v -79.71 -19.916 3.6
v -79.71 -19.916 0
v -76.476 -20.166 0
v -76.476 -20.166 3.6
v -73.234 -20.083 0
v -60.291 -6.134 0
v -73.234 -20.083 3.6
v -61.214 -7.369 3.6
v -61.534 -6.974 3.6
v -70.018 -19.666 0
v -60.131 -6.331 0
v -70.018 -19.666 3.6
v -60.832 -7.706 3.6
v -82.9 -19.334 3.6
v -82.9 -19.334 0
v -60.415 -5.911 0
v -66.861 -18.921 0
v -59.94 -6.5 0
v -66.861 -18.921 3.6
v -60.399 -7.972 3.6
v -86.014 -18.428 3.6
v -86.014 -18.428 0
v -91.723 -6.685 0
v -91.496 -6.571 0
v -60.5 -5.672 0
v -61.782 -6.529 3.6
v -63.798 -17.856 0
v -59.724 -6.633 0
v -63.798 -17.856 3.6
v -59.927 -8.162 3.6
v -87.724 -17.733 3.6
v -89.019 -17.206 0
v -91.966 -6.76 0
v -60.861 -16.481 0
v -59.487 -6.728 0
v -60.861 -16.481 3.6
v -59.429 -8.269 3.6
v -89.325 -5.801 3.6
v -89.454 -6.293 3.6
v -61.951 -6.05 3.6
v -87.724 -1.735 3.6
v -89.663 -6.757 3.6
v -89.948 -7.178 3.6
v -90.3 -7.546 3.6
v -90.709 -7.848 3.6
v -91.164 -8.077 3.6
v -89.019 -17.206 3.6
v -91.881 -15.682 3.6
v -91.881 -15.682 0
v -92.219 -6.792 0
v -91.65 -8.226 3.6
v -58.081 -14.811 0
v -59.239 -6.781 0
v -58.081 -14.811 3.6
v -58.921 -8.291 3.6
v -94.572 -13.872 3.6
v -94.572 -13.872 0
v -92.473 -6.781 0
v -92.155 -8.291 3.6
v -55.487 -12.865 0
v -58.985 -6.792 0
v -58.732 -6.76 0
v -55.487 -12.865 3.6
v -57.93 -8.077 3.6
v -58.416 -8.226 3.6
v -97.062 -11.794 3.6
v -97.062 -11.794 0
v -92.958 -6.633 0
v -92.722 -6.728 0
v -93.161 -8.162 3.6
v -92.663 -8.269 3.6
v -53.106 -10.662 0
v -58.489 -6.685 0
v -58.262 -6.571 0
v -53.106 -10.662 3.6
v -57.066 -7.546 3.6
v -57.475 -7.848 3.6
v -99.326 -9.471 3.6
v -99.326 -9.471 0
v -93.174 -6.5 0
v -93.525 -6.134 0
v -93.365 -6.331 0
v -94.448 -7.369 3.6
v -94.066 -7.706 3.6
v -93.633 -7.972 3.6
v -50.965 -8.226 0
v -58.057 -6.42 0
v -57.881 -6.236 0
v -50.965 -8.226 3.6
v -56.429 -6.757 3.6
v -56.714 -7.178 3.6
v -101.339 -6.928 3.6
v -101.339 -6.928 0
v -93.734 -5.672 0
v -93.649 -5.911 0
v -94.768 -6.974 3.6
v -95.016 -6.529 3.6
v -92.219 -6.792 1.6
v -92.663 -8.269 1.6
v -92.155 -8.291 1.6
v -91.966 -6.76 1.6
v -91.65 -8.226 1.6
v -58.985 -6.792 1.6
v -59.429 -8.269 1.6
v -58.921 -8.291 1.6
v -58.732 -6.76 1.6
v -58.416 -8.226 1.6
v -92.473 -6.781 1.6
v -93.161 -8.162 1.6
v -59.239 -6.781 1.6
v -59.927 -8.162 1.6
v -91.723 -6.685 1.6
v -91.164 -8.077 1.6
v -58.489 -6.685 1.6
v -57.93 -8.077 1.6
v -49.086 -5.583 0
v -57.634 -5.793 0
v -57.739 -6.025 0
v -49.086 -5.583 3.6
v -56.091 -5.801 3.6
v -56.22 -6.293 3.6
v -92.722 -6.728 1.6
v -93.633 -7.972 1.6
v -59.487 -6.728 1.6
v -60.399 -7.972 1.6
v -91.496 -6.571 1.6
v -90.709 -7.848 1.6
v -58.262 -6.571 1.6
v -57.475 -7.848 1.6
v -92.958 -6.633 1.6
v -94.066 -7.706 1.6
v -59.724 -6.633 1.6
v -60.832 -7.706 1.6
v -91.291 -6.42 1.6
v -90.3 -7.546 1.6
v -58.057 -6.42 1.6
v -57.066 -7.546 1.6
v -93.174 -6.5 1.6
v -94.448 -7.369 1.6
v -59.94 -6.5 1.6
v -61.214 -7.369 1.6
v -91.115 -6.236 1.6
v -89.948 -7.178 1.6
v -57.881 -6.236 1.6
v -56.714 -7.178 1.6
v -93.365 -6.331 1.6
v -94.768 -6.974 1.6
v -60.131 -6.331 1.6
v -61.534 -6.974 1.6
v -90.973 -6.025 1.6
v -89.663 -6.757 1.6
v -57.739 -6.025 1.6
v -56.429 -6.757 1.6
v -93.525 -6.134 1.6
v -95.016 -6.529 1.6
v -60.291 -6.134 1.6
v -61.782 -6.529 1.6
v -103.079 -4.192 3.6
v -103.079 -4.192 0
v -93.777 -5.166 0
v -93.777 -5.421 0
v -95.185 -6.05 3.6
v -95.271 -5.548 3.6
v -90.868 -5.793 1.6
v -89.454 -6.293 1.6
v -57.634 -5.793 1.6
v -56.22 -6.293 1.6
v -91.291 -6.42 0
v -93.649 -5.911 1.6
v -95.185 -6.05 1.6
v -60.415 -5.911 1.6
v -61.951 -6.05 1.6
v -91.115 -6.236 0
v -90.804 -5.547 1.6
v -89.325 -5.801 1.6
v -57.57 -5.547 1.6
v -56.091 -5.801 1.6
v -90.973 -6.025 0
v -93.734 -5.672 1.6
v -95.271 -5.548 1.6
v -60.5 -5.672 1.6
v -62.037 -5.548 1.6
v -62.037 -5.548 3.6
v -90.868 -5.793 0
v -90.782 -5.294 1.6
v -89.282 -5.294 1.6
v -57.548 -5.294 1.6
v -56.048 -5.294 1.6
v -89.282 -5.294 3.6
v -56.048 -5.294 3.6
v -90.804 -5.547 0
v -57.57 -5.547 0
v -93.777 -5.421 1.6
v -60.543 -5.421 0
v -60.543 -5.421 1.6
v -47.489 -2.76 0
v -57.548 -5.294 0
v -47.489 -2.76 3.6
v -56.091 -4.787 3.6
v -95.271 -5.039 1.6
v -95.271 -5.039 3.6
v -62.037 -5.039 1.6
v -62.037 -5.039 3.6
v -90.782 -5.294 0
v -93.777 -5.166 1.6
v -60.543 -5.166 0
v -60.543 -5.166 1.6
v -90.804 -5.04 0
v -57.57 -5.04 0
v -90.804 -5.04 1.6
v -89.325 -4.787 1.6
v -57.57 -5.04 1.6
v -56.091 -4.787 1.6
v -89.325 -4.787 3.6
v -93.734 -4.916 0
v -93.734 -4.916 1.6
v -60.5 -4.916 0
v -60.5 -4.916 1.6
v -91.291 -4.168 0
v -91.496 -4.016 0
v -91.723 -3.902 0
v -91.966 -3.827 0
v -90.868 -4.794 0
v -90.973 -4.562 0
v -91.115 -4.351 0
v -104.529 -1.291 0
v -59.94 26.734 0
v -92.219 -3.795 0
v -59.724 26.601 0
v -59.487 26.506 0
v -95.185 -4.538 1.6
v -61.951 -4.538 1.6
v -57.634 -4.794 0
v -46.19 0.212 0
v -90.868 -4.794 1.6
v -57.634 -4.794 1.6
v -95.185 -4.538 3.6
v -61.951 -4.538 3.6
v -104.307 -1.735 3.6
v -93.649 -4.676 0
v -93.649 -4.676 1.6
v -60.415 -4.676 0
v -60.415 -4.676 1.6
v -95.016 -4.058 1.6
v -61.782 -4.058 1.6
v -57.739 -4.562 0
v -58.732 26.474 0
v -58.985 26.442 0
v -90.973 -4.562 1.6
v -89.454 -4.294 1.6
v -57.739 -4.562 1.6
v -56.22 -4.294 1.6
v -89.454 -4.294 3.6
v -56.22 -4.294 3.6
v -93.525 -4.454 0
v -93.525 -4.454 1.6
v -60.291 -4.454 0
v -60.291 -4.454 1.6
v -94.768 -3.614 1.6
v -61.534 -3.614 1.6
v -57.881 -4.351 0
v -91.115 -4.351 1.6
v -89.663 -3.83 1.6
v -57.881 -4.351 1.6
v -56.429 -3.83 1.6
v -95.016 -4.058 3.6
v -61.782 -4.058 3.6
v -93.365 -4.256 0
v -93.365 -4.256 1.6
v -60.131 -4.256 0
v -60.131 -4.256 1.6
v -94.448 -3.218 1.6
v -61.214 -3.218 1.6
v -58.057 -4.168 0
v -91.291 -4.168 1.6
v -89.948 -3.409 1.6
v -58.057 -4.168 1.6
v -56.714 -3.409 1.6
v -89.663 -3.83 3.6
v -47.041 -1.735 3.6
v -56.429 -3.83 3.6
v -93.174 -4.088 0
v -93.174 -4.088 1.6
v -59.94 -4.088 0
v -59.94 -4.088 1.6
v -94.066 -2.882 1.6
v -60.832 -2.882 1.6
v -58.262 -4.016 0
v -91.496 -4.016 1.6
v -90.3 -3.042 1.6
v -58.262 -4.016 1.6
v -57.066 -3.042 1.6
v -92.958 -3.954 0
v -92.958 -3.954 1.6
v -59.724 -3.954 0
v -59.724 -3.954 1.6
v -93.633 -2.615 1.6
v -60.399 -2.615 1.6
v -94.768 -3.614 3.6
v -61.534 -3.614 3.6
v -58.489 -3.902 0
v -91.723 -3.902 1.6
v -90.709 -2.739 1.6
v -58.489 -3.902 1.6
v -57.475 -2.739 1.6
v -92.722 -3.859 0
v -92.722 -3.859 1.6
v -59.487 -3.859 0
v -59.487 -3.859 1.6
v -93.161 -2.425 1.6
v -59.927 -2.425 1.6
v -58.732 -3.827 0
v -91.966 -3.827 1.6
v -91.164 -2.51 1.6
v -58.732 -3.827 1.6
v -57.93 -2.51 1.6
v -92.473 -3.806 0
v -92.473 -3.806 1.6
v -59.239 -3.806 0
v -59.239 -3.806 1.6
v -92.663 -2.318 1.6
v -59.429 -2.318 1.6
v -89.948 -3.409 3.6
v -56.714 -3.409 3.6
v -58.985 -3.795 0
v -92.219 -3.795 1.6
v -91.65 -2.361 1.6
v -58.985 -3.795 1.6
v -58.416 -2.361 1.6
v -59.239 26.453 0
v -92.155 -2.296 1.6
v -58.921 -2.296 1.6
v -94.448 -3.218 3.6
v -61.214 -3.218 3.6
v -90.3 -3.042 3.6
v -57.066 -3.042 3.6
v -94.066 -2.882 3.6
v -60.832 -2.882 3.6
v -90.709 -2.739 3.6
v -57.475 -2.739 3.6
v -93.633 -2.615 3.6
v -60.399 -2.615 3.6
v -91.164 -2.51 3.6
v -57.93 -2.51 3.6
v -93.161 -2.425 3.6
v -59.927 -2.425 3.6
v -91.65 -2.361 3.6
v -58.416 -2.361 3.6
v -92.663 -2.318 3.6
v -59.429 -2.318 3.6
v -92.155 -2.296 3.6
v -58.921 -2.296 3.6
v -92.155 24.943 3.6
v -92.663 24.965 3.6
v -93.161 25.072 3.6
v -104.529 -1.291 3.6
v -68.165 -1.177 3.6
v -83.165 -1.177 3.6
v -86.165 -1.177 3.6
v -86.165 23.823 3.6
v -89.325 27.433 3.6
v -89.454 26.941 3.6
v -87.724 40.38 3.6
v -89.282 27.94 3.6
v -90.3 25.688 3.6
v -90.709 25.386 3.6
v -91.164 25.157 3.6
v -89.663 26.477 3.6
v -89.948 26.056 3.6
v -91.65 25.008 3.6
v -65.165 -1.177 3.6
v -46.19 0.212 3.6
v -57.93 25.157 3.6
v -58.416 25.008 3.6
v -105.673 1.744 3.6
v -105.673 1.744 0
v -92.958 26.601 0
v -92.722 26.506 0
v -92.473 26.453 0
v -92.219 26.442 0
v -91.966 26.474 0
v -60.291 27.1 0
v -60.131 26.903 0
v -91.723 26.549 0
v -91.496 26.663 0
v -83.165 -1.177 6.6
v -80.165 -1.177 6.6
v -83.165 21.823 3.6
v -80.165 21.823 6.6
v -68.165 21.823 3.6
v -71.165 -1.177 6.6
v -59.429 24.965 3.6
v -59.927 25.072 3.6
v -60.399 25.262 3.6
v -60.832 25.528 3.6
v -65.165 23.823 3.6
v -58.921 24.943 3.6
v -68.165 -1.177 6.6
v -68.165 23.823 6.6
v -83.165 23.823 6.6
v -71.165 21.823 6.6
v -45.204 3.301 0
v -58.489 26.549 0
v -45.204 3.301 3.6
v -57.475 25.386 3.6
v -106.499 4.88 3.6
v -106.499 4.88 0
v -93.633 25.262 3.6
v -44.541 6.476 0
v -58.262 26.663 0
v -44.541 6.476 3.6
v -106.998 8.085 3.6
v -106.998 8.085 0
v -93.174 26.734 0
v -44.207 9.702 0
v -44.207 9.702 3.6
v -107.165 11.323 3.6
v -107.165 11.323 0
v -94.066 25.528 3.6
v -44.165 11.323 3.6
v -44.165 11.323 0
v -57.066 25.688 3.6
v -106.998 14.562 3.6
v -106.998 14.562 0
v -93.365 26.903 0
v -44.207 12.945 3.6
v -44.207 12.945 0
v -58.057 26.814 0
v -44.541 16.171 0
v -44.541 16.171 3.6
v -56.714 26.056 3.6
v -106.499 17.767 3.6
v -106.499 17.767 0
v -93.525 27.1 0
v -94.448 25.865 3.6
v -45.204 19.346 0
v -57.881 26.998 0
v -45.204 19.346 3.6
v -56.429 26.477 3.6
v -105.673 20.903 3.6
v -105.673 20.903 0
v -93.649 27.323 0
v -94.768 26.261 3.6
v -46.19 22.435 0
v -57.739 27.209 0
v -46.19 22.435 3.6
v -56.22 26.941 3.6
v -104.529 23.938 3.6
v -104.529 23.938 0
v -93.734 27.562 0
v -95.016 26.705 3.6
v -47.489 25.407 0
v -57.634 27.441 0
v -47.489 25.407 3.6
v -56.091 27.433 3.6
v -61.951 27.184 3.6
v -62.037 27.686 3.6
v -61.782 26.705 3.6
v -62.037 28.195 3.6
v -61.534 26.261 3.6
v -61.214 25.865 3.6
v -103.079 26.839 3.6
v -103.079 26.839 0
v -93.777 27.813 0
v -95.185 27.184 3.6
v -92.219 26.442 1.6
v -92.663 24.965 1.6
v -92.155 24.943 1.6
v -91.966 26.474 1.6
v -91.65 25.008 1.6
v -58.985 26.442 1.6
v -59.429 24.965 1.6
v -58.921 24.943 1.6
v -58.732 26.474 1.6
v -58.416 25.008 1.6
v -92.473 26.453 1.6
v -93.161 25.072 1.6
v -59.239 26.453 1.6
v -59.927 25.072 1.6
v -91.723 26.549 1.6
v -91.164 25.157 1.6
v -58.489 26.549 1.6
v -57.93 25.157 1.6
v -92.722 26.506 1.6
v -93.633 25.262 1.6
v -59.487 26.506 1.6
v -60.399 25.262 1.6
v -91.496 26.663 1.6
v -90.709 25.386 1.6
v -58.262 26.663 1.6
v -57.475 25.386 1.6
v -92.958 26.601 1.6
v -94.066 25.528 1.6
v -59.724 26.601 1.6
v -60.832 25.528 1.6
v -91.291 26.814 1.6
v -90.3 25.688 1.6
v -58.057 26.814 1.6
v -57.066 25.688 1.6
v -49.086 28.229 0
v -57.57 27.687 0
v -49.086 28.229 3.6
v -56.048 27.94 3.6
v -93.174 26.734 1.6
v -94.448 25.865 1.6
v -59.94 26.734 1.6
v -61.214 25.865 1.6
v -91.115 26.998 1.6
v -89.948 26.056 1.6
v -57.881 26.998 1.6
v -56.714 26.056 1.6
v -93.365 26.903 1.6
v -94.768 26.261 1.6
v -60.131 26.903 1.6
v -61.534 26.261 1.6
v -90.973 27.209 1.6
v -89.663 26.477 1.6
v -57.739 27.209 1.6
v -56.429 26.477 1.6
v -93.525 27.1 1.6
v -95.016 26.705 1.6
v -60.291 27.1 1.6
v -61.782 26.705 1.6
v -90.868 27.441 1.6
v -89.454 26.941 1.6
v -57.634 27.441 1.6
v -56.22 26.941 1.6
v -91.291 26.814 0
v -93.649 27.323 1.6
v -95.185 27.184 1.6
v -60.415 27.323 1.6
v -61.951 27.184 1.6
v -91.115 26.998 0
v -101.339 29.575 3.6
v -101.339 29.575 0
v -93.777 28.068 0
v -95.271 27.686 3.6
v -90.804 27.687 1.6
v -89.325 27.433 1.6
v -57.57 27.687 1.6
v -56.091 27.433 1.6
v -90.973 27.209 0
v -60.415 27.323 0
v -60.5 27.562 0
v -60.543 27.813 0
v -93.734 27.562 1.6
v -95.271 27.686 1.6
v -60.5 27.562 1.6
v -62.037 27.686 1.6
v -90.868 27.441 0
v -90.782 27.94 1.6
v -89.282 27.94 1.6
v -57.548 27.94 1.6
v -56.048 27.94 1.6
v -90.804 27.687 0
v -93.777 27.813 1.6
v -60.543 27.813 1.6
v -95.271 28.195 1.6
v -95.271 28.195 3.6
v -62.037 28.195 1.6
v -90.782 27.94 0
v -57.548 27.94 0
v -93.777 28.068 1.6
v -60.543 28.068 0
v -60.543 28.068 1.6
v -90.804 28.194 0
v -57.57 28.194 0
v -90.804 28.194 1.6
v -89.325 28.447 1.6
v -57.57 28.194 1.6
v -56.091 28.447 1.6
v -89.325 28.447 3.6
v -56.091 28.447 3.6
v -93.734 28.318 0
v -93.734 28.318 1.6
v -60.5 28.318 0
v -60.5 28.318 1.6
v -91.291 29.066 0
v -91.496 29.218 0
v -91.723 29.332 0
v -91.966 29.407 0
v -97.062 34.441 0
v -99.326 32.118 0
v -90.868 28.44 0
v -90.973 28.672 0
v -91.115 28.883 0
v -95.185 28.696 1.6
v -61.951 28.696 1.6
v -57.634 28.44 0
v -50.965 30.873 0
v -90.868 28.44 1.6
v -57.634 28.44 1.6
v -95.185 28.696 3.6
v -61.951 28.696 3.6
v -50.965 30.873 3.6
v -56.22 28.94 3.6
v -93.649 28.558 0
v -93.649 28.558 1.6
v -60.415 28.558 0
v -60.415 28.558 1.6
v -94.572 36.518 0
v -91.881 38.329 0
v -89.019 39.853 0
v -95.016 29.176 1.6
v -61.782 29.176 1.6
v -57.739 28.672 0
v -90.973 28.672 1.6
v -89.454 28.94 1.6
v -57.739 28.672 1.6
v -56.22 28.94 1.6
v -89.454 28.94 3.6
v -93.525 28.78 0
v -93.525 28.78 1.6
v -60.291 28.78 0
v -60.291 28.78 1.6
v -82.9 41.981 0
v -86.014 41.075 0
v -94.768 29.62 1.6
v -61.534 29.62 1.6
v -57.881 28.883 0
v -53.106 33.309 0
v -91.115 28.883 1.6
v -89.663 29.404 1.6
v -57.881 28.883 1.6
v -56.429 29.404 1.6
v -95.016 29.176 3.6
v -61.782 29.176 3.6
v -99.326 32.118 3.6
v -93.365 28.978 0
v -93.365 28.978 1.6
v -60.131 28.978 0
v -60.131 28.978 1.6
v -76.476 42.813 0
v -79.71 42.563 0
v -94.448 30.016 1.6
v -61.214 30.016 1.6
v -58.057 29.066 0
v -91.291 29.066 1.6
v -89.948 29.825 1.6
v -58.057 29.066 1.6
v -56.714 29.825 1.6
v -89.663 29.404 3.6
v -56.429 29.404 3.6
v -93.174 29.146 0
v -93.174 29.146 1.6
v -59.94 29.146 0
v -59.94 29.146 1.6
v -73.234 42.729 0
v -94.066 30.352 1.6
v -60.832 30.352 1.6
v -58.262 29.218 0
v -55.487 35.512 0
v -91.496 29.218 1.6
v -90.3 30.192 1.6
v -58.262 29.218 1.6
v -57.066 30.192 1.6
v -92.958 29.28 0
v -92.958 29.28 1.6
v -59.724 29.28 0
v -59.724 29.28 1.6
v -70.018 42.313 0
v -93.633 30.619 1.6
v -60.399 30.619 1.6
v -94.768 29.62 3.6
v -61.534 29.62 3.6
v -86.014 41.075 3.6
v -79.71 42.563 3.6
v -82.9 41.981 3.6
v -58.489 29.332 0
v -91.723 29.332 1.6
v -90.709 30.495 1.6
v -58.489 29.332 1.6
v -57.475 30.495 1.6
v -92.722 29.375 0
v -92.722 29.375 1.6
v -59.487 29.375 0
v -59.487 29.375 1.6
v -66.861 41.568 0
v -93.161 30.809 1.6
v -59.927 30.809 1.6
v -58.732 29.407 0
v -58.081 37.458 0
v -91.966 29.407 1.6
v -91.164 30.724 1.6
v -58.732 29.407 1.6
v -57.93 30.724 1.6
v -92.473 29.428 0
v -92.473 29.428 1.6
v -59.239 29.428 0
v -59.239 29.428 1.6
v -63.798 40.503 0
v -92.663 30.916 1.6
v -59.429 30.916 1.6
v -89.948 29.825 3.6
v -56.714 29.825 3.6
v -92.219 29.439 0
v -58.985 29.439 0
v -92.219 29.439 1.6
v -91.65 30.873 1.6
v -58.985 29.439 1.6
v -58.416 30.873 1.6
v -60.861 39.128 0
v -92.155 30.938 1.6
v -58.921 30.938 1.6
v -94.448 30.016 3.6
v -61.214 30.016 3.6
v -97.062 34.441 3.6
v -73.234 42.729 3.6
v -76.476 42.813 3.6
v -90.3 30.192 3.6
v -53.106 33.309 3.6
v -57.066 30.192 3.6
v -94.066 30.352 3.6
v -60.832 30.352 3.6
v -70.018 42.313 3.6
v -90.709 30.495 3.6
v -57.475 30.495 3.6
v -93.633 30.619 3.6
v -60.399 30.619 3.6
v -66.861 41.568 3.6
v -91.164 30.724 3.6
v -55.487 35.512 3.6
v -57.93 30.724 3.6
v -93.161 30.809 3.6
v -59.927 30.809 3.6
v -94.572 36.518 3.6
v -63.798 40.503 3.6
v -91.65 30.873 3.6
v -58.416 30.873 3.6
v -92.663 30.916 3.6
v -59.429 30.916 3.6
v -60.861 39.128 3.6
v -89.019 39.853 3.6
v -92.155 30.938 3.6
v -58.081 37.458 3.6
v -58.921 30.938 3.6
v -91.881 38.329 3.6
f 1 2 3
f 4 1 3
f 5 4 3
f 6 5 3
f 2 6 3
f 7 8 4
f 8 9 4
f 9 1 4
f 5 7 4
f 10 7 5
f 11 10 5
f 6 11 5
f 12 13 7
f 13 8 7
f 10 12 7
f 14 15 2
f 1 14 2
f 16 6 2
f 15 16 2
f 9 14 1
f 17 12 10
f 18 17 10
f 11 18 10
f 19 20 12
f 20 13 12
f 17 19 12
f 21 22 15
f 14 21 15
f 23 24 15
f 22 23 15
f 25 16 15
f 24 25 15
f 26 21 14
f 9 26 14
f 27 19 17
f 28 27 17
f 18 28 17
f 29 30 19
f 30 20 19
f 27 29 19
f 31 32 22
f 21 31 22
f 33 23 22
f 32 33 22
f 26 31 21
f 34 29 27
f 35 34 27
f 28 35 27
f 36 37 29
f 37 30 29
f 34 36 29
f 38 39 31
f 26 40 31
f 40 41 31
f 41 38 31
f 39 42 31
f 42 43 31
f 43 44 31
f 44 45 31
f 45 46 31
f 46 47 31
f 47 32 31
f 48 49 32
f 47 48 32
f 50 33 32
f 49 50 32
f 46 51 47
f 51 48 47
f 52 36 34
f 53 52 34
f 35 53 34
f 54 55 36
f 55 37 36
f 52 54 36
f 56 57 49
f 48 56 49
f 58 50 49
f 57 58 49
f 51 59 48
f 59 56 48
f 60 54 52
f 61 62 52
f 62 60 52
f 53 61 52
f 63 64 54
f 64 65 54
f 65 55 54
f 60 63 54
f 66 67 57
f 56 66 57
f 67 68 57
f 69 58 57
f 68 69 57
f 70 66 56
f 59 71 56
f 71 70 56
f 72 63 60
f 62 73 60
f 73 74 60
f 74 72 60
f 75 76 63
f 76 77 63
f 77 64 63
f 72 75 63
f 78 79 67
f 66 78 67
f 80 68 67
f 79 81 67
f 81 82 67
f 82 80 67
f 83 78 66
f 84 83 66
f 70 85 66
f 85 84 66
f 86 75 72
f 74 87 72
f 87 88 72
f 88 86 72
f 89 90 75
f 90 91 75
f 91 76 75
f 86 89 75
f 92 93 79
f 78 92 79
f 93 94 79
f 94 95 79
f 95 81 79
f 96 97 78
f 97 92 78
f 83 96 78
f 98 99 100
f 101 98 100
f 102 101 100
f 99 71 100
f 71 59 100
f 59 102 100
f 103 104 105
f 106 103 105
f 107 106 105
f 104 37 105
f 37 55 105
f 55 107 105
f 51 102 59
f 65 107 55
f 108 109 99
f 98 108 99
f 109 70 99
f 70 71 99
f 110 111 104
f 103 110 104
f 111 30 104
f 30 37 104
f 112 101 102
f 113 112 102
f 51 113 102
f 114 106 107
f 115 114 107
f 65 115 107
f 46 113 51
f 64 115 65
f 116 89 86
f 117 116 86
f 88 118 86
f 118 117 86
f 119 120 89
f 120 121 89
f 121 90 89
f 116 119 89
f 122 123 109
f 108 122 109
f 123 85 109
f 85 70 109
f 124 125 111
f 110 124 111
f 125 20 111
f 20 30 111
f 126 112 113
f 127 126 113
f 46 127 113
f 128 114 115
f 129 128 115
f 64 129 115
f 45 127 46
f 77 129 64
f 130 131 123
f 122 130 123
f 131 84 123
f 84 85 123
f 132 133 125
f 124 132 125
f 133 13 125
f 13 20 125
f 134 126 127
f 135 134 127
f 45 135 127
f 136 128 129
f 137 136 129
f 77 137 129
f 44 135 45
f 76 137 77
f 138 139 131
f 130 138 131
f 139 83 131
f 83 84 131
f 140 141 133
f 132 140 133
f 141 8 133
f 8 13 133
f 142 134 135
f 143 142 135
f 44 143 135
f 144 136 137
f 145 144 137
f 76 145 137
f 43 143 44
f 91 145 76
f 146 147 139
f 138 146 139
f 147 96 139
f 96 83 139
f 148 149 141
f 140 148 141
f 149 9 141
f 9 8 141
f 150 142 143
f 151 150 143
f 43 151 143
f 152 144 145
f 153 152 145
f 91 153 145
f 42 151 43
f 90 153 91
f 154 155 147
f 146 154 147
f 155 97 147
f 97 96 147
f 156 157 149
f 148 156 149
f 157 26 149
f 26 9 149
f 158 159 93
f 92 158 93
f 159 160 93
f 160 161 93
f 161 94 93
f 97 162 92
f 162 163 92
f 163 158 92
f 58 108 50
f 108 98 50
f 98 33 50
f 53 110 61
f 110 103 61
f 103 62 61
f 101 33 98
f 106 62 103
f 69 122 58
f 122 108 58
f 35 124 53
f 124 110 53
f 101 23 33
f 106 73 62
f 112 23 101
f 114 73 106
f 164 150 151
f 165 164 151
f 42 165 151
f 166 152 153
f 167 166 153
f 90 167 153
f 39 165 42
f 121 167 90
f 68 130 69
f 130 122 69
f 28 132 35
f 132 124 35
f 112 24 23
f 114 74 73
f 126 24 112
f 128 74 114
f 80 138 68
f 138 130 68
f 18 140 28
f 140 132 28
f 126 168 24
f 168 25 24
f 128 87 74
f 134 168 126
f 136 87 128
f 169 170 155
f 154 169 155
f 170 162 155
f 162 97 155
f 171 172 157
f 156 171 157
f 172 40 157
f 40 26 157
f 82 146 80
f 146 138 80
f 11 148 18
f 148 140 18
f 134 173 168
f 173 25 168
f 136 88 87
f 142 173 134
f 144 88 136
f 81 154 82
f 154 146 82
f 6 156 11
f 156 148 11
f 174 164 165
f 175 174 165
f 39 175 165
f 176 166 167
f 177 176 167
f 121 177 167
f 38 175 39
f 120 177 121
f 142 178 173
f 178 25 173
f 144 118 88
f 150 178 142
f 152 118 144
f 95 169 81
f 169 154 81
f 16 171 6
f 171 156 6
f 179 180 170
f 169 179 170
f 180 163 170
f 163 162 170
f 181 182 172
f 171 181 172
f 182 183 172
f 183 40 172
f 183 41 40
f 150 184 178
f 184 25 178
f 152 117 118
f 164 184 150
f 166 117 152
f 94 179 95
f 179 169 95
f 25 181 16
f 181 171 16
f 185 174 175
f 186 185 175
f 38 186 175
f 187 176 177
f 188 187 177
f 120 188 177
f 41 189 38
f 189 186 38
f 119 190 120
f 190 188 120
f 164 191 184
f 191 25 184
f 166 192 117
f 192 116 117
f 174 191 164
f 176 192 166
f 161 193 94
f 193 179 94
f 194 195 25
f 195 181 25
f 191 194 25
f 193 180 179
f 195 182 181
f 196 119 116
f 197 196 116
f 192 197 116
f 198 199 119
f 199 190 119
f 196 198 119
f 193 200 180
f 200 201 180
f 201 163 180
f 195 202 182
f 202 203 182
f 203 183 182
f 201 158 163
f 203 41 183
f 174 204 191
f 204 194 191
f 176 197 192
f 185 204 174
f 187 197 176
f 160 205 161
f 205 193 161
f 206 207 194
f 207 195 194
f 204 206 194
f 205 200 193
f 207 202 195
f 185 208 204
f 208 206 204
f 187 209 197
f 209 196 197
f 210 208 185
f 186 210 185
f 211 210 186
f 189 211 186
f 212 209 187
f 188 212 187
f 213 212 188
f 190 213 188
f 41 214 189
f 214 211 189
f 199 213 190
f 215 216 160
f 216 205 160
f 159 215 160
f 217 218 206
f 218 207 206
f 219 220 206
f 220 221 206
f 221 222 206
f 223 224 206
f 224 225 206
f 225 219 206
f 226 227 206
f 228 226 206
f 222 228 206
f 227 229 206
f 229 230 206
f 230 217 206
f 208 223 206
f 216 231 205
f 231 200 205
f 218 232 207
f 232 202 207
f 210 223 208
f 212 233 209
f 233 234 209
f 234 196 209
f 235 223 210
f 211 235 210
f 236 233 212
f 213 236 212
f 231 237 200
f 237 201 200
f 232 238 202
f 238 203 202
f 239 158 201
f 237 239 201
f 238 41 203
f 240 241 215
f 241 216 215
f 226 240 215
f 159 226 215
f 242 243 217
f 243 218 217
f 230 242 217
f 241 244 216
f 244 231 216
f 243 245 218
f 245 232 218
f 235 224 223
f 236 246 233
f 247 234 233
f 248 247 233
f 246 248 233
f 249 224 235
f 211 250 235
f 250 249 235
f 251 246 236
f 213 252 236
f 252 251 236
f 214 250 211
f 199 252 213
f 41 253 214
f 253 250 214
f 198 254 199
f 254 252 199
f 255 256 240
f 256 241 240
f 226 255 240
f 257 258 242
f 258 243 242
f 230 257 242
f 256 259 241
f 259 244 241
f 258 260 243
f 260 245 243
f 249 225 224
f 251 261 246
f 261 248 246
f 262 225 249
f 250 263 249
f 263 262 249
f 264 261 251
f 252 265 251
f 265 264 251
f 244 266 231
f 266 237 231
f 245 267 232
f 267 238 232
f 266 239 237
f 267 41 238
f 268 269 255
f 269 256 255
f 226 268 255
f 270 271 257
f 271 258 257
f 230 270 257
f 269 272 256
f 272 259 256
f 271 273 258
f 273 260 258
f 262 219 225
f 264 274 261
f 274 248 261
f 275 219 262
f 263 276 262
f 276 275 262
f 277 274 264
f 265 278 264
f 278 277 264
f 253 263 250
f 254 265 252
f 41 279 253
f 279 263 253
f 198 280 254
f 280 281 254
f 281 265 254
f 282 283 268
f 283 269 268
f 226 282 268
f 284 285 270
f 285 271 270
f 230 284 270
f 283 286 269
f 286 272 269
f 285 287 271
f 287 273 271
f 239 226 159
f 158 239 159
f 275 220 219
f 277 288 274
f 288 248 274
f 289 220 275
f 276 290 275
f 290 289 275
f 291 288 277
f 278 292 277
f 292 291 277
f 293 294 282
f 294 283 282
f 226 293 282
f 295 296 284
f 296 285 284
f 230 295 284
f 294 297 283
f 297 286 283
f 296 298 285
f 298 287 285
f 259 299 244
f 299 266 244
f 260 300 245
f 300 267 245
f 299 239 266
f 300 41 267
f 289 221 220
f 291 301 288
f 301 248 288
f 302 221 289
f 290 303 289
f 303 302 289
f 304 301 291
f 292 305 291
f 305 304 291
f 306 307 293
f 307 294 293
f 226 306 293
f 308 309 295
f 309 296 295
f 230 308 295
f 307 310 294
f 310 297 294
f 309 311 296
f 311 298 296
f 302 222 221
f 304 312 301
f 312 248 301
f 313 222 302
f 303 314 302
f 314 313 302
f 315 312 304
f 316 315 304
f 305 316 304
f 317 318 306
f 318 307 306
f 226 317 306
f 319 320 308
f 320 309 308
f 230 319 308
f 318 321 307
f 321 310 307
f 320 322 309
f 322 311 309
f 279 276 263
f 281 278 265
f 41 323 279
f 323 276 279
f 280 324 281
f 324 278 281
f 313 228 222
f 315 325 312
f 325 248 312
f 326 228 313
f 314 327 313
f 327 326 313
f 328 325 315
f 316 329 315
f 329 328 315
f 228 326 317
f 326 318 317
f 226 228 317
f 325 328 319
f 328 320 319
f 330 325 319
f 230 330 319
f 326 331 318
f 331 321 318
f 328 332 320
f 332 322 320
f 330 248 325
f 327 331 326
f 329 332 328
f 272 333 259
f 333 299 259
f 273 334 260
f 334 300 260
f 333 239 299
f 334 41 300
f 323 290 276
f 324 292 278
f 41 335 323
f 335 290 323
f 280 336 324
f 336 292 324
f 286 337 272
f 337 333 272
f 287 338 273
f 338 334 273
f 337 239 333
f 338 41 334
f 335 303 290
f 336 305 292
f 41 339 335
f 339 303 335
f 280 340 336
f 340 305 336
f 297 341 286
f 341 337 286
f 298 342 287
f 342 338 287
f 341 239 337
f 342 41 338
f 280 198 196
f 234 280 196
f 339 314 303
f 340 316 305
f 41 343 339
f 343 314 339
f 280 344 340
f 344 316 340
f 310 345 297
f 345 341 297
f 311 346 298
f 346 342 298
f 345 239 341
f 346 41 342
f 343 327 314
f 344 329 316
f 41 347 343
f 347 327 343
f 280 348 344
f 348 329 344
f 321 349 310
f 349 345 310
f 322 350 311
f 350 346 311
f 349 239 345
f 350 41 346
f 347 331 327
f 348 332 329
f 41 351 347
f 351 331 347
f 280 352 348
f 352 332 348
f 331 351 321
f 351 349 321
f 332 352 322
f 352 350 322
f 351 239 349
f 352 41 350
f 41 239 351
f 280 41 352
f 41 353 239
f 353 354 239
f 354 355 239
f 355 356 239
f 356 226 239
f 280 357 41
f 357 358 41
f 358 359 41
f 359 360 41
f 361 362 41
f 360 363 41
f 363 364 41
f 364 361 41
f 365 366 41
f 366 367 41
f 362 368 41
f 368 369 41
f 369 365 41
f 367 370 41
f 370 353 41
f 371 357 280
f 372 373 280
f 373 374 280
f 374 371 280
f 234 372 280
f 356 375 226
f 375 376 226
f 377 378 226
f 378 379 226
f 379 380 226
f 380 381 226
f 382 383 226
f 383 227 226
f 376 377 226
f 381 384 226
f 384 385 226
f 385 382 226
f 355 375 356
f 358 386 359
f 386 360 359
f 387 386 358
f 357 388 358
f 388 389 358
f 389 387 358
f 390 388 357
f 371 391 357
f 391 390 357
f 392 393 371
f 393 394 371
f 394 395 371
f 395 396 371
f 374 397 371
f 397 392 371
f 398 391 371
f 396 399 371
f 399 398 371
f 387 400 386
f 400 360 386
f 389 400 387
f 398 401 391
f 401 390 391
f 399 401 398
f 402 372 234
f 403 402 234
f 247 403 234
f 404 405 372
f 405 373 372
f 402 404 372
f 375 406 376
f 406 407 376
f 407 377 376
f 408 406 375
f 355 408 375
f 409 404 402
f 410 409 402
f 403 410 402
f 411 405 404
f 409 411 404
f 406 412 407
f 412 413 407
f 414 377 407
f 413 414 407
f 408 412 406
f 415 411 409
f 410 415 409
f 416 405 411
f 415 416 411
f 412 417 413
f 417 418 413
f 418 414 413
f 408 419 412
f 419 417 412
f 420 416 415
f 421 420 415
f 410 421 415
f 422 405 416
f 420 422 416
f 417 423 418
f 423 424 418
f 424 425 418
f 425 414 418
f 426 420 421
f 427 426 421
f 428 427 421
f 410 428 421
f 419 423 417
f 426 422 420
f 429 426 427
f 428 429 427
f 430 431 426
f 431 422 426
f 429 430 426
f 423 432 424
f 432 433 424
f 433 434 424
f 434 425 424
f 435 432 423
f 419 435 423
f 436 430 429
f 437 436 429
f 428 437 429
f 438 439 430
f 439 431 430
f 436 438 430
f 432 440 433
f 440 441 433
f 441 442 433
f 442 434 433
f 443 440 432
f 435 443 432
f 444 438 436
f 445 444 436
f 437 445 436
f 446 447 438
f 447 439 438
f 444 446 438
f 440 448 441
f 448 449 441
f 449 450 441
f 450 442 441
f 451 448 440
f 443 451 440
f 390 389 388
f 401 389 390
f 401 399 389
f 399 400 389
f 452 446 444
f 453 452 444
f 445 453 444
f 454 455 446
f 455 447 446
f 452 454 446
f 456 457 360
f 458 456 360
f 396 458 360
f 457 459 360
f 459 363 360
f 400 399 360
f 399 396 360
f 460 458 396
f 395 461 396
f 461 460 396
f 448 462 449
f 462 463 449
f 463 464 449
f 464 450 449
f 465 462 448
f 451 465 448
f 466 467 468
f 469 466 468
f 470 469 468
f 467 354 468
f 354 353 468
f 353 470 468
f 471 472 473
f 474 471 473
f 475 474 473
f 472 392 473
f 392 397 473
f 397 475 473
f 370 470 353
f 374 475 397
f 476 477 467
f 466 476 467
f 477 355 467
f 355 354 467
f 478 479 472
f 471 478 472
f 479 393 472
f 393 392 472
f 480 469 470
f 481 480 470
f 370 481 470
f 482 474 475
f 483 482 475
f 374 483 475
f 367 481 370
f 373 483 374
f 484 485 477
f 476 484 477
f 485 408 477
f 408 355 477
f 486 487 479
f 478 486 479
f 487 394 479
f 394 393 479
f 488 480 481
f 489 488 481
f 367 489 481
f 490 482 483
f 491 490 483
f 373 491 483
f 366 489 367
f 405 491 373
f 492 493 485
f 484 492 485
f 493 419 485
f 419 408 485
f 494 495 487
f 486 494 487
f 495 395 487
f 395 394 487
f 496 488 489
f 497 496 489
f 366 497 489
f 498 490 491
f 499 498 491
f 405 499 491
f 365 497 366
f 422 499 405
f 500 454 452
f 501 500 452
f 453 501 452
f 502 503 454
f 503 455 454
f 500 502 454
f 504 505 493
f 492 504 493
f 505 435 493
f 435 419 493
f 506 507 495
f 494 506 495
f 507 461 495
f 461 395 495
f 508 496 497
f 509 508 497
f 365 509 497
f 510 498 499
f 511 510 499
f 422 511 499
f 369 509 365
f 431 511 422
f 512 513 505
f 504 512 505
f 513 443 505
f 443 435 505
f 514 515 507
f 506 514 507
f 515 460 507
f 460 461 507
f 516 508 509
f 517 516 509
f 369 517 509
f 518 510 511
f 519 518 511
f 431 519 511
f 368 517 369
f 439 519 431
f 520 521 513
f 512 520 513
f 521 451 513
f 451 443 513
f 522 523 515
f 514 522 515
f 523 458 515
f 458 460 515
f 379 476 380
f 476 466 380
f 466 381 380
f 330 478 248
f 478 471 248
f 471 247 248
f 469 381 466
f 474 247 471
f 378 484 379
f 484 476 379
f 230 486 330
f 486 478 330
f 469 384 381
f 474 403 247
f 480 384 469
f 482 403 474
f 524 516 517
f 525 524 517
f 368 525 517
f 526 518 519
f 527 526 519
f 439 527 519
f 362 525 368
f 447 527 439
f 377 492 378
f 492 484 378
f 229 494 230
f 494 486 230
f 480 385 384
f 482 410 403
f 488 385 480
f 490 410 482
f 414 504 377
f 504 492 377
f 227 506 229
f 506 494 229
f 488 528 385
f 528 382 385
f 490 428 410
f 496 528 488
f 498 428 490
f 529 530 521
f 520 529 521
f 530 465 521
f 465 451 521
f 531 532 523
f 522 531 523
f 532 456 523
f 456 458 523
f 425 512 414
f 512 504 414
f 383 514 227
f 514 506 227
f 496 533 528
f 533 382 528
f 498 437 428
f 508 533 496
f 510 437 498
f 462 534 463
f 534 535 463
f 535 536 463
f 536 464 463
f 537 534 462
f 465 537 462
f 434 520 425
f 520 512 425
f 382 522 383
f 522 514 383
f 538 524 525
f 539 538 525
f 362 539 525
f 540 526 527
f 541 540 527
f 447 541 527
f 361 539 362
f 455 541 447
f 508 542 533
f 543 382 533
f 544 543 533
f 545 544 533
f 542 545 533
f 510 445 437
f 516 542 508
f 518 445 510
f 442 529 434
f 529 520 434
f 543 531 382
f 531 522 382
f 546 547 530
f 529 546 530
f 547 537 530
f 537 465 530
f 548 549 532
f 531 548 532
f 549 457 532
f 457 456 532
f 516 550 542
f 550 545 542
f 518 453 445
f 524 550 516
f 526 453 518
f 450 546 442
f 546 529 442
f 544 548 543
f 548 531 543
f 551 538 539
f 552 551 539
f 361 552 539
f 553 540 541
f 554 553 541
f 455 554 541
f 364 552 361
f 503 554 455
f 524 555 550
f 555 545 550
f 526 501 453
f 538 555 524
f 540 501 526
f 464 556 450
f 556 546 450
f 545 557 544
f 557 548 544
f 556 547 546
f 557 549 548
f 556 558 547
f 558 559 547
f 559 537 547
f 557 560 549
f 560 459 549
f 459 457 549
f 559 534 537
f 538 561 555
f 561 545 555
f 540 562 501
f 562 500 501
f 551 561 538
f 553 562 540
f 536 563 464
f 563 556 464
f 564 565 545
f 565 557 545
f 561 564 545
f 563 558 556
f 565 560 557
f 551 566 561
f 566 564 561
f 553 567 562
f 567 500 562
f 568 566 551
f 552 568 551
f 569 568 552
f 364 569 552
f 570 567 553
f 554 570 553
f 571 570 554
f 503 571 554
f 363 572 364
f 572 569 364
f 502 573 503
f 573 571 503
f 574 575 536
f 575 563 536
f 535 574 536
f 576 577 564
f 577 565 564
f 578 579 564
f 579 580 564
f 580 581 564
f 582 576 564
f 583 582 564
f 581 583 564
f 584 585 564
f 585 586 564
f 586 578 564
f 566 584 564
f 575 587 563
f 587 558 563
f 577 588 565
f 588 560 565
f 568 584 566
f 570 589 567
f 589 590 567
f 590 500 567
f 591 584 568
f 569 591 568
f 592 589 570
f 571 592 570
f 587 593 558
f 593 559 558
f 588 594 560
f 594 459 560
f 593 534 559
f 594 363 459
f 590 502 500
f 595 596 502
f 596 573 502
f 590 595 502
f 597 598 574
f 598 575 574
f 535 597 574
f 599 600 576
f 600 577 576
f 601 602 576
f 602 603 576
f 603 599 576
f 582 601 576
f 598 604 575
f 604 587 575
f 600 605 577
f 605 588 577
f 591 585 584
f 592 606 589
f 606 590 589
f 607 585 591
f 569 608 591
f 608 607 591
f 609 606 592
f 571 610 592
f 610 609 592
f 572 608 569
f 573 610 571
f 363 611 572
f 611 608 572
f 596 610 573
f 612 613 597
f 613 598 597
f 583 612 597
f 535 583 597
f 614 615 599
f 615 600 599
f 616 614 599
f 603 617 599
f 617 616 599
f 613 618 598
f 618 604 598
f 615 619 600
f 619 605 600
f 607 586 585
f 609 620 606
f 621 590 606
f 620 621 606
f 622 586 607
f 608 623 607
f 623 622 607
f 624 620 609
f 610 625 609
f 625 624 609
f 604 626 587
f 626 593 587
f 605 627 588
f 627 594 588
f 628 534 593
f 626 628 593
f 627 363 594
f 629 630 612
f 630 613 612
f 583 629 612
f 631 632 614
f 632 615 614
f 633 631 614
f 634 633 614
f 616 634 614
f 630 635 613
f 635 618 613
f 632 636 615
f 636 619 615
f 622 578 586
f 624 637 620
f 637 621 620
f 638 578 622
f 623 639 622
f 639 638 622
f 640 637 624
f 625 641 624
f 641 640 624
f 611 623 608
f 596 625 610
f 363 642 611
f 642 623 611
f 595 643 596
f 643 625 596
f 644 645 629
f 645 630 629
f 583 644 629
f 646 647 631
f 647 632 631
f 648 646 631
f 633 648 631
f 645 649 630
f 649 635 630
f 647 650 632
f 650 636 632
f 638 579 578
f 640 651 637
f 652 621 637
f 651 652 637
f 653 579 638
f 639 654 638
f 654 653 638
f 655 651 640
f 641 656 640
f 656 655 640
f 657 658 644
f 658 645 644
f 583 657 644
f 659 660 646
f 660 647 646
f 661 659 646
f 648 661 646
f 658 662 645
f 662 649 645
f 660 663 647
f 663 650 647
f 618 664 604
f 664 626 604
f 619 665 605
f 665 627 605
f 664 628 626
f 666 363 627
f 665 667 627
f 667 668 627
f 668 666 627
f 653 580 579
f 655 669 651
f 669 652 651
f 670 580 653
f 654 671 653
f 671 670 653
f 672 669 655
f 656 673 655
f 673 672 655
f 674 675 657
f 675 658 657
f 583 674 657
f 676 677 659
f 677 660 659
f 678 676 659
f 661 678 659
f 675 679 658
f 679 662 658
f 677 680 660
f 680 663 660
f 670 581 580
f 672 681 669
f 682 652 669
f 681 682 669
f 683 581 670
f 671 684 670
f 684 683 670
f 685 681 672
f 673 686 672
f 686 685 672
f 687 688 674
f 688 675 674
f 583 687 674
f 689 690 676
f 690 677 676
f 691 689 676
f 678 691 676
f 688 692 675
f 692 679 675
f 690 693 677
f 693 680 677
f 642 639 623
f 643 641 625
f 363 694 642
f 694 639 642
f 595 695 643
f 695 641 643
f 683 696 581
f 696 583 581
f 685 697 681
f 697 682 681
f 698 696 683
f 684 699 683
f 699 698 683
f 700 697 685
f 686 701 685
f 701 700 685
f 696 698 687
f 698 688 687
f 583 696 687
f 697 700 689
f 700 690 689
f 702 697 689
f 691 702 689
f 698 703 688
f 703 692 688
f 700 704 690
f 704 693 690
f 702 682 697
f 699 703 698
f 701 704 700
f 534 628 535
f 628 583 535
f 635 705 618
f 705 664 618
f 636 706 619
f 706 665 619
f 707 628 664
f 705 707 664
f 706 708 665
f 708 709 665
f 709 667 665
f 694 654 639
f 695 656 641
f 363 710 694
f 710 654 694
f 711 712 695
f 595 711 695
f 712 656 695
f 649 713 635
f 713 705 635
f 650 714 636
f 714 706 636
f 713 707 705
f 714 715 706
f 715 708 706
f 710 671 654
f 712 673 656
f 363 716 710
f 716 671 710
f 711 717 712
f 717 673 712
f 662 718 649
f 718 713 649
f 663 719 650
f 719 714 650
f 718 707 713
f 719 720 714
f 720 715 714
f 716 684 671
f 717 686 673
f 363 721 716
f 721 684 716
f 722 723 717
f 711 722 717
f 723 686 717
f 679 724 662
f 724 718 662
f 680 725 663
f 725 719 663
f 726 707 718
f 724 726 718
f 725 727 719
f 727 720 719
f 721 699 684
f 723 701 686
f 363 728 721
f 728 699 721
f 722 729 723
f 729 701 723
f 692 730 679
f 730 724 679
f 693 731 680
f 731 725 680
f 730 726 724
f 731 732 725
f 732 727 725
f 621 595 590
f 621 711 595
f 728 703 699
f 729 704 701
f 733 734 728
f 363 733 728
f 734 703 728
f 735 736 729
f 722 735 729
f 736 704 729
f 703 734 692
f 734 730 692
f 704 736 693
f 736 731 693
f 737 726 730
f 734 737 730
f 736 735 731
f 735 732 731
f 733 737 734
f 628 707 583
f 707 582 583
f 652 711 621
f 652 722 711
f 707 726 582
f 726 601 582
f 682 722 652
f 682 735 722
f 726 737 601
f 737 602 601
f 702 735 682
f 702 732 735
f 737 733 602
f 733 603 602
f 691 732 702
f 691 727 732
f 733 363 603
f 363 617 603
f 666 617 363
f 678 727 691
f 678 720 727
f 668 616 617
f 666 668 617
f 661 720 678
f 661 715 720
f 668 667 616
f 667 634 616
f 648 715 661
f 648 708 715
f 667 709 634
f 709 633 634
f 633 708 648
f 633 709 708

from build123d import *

# Parameters (mm, degrees)
CROQUIS1_R              = 31.5
SALIENTE_EXTRUIR1_DEPTH = 3.6
CROQUIS2_R              = 1.5
CORTAR_EXTRUIR1_DEPTH   = 3.6
CROQUIS3_R              = 3
CORTAR_EXTRUIR2_DEPTH   = 2
CROQUIS4_W              = 15
CROQUIS4_H              = 25
SALIENTE_EXTRUIR2_DEPTH = 3
SALIENTE_EXTRUIR4_DEPTH = 25
CORTAR_EXTRUIR6_DEPTH   = 23


with BuildPart() as part:
    # Croquis1 → Saliente-Extruir1 (new body)
    with BuildSketch(Plane.XY):
        with Locations((-75.665270593, 11.323426573)):
            Circle(CROQUIS1_R)
    extrude(amount=SALIENTE_EXTRUIR1_DEPTH)

    # Croquis2 → Cortar-Extruir1 (cut)
    with BuildSketch(Plane.XY.offset(3.6)):
        with Locations((-92.282279951, 27.940435931)):
            Circle(CROQUIS2_R)
        with Locations((-59.048261236, 27.940435931)):
            Circle(CROQUIS2_R)
        with Locations((-59.048261236, -5.293582784)):
            Circle(CROQUIS2_R)
        with Locations((-92.282279951, -5.293582784)):
            Circle(CROQUIS2_R)
    extrude(amount=-CORTAR_EXTRUIR1_DEPTH, mode=Mode.SUBTRACT)

    # Croquis3 → Cortar-Extruir2 (cut)
    with BuildSketch(Plane.XY.offset(3.6)):
        with Locations((-92.282279951, 27.940435931)):
            Circle(CROQUIS3_R)
        with Locations((-59.048261236, 27.940435931)):
            Circle(CROQUIS3_R)
        with Locations((-59.048261236, -5.293582784)):
            Circle(CROQUIS3_R)
        with Locations((-92.282279951, -5.293582784)):
            Circle(CROQUIS3_R)
    extrude(amount=-CORTAR_EXTRUIR2_DEPTH, mode=Mode.SUBTRACT)

    # Croquis4 → Saliente-Extruir2 (add)
    with BuildSketch(Plane.XY.offset(3.6)):
        with Locations((-75.665270593, 11.323426573)):
            Rectangle(CROQUIS4_W, CROQUIS4_H)
    extrude(amount=SALIENTE_EXTRUIR2_DEPTH)

    # Croquis7 → Saliente-Extruir4 (add)
    with BuildSketch(Plane.XZ.offset(1.176573427)):
        Polygon((-83.165270593, 6.6), (-86.165270593, 3.6), (-83.165270593, 3.6), align=None)
        Polygon((-68.165270593, 6.6), (-65.165270593, 3.6), (-68.165270593, 3.6), align=None)
    extrude(amount=-SALIENTE_EXTRUIR4_DEPTH)

    # Croquis8 → Cortar-Extruir6 (cut)
    with BuildSketch(Plane.XZ.offset(1.176573427)):
        Polygon((-83.165270593, 3.6), (-80.165270593, 6.6), (-71.165270593, 6.6), (-68.165270593, 3.6), align=None)
    extrude(amount=-CORTAR_EXTRUIR6_DEPTH, mode=Mode.SUBTRACT)


solid = part.part
